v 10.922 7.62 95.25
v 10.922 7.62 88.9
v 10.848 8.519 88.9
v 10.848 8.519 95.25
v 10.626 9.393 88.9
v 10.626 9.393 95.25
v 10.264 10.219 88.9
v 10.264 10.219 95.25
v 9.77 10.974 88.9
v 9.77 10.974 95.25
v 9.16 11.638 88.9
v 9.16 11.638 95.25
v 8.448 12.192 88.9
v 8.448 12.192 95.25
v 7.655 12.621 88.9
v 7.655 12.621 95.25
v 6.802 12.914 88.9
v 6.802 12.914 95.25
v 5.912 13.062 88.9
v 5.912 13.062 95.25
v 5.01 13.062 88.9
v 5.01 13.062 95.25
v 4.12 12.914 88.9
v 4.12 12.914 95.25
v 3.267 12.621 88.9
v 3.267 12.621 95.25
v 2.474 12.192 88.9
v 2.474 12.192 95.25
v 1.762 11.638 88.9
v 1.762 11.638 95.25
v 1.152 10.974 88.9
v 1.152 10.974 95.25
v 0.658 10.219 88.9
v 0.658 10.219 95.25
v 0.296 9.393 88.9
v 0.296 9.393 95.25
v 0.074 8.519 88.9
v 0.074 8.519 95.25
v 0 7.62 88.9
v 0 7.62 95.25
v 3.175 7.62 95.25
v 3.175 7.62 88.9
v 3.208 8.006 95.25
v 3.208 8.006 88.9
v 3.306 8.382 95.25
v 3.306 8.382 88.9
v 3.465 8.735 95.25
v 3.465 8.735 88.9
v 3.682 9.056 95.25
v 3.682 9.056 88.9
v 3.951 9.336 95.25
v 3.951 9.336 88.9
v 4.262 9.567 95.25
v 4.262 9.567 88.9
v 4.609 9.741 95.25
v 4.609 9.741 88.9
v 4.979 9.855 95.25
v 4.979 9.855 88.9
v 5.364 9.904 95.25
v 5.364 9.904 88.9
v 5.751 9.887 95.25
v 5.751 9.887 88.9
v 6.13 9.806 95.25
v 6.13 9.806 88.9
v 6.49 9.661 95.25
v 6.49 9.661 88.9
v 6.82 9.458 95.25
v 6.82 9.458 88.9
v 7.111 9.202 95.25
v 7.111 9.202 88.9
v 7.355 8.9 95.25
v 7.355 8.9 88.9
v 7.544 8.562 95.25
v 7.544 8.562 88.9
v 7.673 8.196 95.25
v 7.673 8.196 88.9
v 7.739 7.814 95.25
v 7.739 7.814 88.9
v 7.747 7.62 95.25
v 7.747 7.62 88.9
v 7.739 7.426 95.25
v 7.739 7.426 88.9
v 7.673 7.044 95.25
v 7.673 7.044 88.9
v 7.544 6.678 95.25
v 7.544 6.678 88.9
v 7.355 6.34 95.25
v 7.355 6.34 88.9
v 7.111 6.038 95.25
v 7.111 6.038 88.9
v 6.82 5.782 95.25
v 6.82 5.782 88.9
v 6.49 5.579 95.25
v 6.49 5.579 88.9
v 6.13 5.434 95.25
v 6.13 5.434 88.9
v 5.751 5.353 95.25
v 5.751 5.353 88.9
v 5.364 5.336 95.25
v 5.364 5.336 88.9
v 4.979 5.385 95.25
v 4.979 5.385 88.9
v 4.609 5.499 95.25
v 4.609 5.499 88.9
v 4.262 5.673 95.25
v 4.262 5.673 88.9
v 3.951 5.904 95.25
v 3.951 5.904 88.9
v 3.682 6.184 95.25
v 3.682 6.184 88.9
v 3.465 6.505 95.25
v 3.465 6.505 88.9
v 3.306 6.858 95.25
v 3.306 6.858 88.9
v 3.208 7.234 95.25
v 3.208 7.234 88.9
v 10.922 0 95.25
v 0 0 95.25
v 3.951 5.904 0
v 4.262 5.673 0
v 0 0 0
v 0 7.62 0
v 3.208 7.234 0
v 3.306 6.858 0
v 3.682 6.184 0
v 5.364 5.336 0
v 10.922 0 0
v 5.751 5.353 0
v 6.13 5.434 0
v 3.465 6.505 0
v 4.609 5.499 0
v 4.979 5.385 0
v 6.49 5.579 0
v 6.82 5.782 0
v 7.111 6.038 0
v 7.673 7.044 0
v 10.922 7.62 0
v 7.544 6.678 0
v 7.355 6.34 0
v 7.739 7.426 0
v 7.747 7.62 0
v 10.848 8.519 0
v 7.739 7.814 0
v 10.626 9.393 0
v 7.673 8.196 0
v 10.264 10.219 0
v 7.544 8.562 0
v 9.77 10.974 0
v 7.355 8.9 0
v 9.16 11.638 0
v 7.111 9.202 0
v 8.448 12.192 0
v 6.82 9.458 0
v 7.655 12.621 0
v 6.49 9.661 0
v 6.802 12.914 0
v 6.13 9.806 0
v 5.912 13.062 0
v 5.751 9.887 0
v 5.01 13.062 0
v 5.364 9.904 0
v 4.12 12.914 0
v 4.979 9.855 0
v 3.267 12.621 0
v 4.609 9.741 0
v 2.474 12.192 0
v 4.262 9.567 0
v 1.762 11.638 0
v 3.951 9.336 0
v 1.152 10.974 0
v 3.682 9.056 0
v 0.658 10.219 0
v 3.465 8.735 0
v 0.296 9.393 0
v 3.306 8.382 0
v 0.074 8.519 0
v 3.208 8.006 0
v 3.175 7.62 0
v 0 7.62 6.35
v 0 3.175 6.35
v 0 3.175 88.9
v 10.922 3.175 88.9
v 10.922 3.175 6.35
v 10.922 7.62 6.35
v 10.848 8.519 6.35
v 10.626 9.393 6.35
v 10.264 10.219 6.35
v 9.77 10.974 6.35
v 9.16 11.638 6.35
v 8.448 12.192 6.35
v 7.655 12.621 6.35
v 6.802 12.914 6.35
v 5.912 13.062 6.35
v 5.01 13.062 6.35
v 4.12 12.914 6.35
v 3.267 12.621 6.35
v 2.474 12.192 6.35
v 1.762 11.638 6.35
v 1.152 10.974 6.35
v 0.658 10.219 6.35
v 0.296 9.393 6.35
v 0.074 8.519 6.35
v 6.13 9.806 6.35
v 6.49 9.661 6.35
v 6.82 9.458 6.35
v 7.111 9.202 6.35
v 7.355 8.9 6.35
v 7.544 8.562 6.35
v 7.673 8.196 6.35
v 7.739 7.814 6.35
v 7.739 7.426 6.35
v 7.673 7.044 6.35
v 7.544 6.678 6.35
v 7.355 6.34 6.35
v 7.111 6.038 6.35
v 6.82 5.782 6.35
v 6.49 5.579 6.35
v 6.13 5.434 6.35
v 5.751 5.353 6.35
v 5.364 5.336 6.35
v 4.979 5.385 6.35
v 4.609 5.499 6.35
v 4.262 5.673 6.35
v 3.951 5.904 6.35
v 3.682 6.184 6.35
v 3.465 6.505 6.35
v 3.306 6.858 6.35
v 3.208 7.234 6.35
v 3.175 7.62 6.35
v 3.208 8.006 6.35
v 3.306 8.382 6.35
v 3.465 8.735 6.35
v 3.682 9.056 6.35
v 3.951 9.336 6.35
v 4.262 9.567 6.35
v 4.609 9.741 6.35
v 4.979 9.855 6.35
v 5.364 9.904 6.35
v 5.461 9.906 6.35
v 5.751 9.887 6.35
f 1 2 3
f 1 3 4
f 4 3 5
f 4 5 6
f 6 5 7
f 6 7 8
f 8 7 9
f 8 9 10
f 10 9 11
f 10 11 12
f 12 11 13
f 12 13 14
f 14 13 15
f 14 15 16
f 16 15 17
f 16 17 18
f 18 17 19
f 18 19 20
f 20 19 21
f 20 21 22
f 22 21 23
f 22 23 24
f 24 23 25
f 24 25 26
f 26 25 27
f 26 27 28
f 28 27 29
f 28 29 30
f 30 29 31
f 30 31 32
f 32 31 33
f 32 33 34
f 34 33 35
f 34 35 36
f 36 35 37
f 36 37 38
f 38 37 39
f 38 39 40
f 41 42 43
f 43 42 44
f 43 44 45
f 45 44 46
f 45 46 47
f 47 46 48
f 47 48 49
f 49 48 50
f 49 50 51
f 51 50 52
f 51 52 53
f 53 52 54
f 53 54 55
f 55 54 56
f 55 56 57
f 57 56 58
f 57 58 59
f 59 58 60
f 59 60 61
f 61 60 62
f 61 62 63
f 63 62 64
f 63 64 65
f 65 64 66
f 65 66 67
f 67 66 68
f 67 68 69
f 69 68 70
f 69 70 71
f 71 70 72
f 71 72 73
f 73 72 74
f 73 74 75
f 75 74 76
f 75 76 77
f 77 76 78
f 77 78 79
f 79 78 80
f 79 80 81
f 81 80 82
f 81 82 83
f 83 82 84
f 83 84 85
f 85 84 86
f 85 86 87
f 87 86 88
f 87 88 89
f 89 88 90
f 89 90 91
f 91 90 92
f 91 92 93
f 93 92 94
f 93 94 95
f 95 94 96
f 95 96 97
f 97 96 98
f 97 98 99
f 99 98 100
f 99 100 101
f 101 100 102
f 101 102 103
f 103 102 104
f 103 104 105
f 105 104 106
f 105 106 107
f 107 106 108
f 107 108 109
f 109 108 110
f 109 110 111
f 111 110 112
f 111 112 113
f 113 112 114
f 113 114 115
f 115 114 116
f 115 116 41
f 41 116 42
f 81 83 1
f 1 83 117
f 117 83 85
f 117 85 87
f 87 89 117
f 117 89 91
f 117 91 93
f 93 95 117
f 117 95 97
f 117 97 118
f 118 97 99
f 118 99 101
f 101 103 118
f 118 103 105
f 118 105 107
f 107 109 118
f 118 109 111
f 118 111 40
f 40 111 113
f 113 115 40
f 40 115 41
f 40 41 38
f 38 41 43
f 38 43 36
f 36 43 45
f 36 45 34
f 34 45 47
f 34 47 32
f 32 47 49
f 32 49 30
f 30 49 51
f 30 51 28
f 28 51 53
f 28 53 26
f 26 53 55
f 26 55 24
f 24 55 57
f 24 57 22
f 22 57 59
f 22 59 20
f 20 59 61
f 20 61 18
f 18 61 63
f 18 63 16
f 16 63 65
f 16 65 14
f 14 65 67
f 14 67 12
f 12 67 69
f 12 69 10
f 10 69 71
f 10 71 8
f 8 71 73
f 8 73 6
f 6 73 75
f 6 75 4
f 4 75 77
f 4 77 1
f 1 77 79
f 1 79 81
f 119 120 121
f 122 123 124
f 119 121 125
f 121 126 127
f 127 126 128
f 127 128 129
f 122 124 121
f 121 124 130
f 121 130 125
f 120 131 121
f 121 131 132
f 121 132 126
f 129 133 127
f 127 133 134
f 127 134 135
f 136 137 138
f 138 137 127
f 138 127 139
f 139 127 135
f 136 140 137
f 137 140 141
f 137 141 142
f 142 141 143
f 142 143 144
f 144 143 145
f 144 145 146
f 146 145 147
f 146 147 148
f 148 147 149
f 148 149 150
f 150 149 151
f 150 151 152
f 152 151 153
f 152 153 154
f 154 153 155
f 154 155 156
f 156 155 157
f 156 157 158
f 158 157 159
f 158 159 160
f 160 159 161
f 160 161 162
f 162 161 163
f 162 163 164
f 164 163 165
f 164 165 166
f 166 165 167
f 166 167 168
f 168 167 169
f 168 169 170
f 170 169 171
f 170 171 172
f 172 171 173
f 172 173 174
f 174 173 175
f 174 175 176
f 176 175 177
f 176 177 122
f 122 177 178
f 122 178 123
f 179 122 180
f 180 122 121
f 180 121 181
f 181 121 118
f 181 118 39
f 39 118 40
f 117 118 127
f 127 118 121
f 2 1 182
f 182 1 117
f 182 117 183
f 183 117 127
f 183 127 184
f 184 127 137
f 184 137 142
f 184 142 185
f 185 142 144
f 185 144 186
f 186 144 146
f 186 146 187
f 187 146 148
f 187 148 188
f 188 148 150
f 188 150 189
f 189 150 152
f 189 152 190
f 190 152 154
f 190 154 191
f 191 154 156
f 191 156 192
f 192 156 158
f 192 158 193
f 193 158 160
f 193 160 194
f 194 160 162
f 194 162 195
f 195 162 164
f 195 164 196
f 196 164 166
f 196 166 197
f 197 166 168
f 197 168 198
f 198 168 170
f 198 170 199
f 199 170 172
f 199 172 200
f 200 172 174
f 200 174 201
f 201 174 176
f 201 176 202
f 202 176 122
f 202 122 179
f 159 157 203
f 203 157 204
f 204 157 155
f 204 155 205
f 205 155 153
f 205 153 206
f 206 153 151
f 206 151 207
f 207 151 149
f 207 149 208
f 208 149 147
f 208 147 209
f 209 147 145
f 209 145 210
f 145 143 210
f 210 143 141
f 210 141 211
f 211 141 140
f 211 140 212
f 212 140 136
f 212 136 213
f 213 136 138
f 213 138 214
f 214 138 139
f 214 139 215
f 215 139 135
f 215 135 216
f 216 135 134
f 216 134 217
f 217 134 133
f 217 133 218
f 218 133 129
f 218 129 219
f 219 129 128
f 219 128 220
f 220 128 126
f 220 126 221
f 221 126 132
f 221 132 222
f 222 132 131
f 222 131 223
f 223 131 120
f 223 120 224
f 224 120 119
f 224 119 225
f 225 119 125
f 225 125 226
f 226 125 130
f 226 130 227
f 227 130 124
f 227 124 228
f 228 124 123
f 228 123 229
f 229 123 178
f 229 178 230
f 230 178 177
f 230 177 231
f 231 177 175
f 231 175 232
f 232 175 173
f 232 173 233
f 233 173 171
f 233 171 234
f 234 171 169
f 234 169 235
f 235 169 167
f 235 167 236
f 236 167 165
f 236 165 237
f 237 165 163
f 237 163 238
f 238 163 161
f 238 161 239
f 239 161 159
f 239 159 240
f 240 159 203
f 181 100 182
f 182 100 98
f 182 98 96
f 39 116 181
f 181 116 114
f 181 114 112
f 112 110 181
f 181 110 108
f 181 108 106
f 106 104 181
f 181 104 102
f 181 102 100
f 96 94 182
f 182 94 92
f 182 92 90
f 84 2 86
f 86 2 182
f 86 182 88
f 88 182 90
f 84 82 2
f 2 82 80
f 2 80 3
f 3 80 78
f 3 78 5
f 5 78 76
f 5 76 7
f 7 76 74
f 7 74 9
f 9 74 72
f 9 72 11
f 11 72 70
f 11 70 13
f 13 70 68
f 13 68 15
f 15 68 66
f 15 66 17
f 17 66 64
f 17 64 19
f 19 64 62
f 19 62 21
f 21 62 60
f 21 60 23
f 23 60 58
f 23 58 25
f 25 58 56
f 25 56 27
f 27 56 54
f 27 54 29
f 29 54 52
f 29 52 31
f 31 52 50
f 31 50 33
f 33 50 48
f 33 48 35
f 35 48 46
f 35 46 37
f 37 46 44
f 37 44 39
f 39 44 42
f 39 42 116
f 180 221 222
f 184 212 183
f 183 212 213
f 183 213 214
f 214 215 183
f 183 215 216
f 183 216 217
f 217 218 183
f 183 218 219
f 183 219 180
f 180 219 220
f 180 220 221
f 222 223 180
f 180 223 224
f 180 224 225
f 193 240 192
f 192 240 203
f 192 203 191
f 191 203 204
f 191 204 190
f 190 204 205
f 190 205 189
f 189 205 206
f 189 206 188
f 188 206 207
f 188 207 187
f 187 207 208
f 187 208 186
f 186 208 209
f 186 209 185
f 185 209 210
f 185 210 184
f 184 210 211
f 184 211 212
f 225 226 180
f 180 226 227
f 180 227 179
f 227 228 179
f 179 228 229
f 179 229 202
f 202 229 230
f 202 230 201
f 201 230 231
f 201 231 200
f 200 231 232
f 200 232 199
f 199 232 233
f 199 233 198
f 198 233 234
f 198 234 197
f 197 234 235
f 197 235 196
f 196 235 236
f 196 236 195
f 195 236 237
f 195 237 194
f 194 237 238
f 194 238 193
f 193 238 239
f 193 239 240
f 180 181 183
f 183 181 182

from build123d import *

# Parameters (mm, degrees)
SKETCH1_R           = 2.286
BOSS_EXTRUDE1_DEPTH = 95.25
SKETCH2_W           = 82.55
SKETCH2_H           = 9.906
CUT_EXTRUDE1_DEPTH  = 11.922


with BuildPart() as part:
    # Sketch1 → Boss-Extrude1 (new body)
    with BuildSketch(Plane.XY):
        with BuildLine():
            Line((0, 0), (10.922, 0))
            Line((10.922, 0), (10.922, 7.62))
            ThreePointArc((10.922, 7.62), (5.461, 13.081), (0, 7.62))
            Line((0, 7.62), (0, 0))
        make_face()
        with Locations((5.461, 7.62)):
            Circle(SKETCH1_R, mode=Mode.SUBTRACT)
    extrude(amount=BOSS_EXTRUDE1_DEPTH)

    # Sketch2 → Cut-Extrude1 (cut, through all)
    with BuildSketch(Plane(origin=(10.922, 0, 0), x_dir=(0, 0, -1), z_dir=(1, 0, 0))):
        with Locations((-47.625, 8.128)):
            Rectangle(SKETCH2_W, SKETCH2_H)
    extrude(amount=-CUT_EXTRUDE1_DEPTH, mode=Mode.SUBTRACT)


solid = part.part
